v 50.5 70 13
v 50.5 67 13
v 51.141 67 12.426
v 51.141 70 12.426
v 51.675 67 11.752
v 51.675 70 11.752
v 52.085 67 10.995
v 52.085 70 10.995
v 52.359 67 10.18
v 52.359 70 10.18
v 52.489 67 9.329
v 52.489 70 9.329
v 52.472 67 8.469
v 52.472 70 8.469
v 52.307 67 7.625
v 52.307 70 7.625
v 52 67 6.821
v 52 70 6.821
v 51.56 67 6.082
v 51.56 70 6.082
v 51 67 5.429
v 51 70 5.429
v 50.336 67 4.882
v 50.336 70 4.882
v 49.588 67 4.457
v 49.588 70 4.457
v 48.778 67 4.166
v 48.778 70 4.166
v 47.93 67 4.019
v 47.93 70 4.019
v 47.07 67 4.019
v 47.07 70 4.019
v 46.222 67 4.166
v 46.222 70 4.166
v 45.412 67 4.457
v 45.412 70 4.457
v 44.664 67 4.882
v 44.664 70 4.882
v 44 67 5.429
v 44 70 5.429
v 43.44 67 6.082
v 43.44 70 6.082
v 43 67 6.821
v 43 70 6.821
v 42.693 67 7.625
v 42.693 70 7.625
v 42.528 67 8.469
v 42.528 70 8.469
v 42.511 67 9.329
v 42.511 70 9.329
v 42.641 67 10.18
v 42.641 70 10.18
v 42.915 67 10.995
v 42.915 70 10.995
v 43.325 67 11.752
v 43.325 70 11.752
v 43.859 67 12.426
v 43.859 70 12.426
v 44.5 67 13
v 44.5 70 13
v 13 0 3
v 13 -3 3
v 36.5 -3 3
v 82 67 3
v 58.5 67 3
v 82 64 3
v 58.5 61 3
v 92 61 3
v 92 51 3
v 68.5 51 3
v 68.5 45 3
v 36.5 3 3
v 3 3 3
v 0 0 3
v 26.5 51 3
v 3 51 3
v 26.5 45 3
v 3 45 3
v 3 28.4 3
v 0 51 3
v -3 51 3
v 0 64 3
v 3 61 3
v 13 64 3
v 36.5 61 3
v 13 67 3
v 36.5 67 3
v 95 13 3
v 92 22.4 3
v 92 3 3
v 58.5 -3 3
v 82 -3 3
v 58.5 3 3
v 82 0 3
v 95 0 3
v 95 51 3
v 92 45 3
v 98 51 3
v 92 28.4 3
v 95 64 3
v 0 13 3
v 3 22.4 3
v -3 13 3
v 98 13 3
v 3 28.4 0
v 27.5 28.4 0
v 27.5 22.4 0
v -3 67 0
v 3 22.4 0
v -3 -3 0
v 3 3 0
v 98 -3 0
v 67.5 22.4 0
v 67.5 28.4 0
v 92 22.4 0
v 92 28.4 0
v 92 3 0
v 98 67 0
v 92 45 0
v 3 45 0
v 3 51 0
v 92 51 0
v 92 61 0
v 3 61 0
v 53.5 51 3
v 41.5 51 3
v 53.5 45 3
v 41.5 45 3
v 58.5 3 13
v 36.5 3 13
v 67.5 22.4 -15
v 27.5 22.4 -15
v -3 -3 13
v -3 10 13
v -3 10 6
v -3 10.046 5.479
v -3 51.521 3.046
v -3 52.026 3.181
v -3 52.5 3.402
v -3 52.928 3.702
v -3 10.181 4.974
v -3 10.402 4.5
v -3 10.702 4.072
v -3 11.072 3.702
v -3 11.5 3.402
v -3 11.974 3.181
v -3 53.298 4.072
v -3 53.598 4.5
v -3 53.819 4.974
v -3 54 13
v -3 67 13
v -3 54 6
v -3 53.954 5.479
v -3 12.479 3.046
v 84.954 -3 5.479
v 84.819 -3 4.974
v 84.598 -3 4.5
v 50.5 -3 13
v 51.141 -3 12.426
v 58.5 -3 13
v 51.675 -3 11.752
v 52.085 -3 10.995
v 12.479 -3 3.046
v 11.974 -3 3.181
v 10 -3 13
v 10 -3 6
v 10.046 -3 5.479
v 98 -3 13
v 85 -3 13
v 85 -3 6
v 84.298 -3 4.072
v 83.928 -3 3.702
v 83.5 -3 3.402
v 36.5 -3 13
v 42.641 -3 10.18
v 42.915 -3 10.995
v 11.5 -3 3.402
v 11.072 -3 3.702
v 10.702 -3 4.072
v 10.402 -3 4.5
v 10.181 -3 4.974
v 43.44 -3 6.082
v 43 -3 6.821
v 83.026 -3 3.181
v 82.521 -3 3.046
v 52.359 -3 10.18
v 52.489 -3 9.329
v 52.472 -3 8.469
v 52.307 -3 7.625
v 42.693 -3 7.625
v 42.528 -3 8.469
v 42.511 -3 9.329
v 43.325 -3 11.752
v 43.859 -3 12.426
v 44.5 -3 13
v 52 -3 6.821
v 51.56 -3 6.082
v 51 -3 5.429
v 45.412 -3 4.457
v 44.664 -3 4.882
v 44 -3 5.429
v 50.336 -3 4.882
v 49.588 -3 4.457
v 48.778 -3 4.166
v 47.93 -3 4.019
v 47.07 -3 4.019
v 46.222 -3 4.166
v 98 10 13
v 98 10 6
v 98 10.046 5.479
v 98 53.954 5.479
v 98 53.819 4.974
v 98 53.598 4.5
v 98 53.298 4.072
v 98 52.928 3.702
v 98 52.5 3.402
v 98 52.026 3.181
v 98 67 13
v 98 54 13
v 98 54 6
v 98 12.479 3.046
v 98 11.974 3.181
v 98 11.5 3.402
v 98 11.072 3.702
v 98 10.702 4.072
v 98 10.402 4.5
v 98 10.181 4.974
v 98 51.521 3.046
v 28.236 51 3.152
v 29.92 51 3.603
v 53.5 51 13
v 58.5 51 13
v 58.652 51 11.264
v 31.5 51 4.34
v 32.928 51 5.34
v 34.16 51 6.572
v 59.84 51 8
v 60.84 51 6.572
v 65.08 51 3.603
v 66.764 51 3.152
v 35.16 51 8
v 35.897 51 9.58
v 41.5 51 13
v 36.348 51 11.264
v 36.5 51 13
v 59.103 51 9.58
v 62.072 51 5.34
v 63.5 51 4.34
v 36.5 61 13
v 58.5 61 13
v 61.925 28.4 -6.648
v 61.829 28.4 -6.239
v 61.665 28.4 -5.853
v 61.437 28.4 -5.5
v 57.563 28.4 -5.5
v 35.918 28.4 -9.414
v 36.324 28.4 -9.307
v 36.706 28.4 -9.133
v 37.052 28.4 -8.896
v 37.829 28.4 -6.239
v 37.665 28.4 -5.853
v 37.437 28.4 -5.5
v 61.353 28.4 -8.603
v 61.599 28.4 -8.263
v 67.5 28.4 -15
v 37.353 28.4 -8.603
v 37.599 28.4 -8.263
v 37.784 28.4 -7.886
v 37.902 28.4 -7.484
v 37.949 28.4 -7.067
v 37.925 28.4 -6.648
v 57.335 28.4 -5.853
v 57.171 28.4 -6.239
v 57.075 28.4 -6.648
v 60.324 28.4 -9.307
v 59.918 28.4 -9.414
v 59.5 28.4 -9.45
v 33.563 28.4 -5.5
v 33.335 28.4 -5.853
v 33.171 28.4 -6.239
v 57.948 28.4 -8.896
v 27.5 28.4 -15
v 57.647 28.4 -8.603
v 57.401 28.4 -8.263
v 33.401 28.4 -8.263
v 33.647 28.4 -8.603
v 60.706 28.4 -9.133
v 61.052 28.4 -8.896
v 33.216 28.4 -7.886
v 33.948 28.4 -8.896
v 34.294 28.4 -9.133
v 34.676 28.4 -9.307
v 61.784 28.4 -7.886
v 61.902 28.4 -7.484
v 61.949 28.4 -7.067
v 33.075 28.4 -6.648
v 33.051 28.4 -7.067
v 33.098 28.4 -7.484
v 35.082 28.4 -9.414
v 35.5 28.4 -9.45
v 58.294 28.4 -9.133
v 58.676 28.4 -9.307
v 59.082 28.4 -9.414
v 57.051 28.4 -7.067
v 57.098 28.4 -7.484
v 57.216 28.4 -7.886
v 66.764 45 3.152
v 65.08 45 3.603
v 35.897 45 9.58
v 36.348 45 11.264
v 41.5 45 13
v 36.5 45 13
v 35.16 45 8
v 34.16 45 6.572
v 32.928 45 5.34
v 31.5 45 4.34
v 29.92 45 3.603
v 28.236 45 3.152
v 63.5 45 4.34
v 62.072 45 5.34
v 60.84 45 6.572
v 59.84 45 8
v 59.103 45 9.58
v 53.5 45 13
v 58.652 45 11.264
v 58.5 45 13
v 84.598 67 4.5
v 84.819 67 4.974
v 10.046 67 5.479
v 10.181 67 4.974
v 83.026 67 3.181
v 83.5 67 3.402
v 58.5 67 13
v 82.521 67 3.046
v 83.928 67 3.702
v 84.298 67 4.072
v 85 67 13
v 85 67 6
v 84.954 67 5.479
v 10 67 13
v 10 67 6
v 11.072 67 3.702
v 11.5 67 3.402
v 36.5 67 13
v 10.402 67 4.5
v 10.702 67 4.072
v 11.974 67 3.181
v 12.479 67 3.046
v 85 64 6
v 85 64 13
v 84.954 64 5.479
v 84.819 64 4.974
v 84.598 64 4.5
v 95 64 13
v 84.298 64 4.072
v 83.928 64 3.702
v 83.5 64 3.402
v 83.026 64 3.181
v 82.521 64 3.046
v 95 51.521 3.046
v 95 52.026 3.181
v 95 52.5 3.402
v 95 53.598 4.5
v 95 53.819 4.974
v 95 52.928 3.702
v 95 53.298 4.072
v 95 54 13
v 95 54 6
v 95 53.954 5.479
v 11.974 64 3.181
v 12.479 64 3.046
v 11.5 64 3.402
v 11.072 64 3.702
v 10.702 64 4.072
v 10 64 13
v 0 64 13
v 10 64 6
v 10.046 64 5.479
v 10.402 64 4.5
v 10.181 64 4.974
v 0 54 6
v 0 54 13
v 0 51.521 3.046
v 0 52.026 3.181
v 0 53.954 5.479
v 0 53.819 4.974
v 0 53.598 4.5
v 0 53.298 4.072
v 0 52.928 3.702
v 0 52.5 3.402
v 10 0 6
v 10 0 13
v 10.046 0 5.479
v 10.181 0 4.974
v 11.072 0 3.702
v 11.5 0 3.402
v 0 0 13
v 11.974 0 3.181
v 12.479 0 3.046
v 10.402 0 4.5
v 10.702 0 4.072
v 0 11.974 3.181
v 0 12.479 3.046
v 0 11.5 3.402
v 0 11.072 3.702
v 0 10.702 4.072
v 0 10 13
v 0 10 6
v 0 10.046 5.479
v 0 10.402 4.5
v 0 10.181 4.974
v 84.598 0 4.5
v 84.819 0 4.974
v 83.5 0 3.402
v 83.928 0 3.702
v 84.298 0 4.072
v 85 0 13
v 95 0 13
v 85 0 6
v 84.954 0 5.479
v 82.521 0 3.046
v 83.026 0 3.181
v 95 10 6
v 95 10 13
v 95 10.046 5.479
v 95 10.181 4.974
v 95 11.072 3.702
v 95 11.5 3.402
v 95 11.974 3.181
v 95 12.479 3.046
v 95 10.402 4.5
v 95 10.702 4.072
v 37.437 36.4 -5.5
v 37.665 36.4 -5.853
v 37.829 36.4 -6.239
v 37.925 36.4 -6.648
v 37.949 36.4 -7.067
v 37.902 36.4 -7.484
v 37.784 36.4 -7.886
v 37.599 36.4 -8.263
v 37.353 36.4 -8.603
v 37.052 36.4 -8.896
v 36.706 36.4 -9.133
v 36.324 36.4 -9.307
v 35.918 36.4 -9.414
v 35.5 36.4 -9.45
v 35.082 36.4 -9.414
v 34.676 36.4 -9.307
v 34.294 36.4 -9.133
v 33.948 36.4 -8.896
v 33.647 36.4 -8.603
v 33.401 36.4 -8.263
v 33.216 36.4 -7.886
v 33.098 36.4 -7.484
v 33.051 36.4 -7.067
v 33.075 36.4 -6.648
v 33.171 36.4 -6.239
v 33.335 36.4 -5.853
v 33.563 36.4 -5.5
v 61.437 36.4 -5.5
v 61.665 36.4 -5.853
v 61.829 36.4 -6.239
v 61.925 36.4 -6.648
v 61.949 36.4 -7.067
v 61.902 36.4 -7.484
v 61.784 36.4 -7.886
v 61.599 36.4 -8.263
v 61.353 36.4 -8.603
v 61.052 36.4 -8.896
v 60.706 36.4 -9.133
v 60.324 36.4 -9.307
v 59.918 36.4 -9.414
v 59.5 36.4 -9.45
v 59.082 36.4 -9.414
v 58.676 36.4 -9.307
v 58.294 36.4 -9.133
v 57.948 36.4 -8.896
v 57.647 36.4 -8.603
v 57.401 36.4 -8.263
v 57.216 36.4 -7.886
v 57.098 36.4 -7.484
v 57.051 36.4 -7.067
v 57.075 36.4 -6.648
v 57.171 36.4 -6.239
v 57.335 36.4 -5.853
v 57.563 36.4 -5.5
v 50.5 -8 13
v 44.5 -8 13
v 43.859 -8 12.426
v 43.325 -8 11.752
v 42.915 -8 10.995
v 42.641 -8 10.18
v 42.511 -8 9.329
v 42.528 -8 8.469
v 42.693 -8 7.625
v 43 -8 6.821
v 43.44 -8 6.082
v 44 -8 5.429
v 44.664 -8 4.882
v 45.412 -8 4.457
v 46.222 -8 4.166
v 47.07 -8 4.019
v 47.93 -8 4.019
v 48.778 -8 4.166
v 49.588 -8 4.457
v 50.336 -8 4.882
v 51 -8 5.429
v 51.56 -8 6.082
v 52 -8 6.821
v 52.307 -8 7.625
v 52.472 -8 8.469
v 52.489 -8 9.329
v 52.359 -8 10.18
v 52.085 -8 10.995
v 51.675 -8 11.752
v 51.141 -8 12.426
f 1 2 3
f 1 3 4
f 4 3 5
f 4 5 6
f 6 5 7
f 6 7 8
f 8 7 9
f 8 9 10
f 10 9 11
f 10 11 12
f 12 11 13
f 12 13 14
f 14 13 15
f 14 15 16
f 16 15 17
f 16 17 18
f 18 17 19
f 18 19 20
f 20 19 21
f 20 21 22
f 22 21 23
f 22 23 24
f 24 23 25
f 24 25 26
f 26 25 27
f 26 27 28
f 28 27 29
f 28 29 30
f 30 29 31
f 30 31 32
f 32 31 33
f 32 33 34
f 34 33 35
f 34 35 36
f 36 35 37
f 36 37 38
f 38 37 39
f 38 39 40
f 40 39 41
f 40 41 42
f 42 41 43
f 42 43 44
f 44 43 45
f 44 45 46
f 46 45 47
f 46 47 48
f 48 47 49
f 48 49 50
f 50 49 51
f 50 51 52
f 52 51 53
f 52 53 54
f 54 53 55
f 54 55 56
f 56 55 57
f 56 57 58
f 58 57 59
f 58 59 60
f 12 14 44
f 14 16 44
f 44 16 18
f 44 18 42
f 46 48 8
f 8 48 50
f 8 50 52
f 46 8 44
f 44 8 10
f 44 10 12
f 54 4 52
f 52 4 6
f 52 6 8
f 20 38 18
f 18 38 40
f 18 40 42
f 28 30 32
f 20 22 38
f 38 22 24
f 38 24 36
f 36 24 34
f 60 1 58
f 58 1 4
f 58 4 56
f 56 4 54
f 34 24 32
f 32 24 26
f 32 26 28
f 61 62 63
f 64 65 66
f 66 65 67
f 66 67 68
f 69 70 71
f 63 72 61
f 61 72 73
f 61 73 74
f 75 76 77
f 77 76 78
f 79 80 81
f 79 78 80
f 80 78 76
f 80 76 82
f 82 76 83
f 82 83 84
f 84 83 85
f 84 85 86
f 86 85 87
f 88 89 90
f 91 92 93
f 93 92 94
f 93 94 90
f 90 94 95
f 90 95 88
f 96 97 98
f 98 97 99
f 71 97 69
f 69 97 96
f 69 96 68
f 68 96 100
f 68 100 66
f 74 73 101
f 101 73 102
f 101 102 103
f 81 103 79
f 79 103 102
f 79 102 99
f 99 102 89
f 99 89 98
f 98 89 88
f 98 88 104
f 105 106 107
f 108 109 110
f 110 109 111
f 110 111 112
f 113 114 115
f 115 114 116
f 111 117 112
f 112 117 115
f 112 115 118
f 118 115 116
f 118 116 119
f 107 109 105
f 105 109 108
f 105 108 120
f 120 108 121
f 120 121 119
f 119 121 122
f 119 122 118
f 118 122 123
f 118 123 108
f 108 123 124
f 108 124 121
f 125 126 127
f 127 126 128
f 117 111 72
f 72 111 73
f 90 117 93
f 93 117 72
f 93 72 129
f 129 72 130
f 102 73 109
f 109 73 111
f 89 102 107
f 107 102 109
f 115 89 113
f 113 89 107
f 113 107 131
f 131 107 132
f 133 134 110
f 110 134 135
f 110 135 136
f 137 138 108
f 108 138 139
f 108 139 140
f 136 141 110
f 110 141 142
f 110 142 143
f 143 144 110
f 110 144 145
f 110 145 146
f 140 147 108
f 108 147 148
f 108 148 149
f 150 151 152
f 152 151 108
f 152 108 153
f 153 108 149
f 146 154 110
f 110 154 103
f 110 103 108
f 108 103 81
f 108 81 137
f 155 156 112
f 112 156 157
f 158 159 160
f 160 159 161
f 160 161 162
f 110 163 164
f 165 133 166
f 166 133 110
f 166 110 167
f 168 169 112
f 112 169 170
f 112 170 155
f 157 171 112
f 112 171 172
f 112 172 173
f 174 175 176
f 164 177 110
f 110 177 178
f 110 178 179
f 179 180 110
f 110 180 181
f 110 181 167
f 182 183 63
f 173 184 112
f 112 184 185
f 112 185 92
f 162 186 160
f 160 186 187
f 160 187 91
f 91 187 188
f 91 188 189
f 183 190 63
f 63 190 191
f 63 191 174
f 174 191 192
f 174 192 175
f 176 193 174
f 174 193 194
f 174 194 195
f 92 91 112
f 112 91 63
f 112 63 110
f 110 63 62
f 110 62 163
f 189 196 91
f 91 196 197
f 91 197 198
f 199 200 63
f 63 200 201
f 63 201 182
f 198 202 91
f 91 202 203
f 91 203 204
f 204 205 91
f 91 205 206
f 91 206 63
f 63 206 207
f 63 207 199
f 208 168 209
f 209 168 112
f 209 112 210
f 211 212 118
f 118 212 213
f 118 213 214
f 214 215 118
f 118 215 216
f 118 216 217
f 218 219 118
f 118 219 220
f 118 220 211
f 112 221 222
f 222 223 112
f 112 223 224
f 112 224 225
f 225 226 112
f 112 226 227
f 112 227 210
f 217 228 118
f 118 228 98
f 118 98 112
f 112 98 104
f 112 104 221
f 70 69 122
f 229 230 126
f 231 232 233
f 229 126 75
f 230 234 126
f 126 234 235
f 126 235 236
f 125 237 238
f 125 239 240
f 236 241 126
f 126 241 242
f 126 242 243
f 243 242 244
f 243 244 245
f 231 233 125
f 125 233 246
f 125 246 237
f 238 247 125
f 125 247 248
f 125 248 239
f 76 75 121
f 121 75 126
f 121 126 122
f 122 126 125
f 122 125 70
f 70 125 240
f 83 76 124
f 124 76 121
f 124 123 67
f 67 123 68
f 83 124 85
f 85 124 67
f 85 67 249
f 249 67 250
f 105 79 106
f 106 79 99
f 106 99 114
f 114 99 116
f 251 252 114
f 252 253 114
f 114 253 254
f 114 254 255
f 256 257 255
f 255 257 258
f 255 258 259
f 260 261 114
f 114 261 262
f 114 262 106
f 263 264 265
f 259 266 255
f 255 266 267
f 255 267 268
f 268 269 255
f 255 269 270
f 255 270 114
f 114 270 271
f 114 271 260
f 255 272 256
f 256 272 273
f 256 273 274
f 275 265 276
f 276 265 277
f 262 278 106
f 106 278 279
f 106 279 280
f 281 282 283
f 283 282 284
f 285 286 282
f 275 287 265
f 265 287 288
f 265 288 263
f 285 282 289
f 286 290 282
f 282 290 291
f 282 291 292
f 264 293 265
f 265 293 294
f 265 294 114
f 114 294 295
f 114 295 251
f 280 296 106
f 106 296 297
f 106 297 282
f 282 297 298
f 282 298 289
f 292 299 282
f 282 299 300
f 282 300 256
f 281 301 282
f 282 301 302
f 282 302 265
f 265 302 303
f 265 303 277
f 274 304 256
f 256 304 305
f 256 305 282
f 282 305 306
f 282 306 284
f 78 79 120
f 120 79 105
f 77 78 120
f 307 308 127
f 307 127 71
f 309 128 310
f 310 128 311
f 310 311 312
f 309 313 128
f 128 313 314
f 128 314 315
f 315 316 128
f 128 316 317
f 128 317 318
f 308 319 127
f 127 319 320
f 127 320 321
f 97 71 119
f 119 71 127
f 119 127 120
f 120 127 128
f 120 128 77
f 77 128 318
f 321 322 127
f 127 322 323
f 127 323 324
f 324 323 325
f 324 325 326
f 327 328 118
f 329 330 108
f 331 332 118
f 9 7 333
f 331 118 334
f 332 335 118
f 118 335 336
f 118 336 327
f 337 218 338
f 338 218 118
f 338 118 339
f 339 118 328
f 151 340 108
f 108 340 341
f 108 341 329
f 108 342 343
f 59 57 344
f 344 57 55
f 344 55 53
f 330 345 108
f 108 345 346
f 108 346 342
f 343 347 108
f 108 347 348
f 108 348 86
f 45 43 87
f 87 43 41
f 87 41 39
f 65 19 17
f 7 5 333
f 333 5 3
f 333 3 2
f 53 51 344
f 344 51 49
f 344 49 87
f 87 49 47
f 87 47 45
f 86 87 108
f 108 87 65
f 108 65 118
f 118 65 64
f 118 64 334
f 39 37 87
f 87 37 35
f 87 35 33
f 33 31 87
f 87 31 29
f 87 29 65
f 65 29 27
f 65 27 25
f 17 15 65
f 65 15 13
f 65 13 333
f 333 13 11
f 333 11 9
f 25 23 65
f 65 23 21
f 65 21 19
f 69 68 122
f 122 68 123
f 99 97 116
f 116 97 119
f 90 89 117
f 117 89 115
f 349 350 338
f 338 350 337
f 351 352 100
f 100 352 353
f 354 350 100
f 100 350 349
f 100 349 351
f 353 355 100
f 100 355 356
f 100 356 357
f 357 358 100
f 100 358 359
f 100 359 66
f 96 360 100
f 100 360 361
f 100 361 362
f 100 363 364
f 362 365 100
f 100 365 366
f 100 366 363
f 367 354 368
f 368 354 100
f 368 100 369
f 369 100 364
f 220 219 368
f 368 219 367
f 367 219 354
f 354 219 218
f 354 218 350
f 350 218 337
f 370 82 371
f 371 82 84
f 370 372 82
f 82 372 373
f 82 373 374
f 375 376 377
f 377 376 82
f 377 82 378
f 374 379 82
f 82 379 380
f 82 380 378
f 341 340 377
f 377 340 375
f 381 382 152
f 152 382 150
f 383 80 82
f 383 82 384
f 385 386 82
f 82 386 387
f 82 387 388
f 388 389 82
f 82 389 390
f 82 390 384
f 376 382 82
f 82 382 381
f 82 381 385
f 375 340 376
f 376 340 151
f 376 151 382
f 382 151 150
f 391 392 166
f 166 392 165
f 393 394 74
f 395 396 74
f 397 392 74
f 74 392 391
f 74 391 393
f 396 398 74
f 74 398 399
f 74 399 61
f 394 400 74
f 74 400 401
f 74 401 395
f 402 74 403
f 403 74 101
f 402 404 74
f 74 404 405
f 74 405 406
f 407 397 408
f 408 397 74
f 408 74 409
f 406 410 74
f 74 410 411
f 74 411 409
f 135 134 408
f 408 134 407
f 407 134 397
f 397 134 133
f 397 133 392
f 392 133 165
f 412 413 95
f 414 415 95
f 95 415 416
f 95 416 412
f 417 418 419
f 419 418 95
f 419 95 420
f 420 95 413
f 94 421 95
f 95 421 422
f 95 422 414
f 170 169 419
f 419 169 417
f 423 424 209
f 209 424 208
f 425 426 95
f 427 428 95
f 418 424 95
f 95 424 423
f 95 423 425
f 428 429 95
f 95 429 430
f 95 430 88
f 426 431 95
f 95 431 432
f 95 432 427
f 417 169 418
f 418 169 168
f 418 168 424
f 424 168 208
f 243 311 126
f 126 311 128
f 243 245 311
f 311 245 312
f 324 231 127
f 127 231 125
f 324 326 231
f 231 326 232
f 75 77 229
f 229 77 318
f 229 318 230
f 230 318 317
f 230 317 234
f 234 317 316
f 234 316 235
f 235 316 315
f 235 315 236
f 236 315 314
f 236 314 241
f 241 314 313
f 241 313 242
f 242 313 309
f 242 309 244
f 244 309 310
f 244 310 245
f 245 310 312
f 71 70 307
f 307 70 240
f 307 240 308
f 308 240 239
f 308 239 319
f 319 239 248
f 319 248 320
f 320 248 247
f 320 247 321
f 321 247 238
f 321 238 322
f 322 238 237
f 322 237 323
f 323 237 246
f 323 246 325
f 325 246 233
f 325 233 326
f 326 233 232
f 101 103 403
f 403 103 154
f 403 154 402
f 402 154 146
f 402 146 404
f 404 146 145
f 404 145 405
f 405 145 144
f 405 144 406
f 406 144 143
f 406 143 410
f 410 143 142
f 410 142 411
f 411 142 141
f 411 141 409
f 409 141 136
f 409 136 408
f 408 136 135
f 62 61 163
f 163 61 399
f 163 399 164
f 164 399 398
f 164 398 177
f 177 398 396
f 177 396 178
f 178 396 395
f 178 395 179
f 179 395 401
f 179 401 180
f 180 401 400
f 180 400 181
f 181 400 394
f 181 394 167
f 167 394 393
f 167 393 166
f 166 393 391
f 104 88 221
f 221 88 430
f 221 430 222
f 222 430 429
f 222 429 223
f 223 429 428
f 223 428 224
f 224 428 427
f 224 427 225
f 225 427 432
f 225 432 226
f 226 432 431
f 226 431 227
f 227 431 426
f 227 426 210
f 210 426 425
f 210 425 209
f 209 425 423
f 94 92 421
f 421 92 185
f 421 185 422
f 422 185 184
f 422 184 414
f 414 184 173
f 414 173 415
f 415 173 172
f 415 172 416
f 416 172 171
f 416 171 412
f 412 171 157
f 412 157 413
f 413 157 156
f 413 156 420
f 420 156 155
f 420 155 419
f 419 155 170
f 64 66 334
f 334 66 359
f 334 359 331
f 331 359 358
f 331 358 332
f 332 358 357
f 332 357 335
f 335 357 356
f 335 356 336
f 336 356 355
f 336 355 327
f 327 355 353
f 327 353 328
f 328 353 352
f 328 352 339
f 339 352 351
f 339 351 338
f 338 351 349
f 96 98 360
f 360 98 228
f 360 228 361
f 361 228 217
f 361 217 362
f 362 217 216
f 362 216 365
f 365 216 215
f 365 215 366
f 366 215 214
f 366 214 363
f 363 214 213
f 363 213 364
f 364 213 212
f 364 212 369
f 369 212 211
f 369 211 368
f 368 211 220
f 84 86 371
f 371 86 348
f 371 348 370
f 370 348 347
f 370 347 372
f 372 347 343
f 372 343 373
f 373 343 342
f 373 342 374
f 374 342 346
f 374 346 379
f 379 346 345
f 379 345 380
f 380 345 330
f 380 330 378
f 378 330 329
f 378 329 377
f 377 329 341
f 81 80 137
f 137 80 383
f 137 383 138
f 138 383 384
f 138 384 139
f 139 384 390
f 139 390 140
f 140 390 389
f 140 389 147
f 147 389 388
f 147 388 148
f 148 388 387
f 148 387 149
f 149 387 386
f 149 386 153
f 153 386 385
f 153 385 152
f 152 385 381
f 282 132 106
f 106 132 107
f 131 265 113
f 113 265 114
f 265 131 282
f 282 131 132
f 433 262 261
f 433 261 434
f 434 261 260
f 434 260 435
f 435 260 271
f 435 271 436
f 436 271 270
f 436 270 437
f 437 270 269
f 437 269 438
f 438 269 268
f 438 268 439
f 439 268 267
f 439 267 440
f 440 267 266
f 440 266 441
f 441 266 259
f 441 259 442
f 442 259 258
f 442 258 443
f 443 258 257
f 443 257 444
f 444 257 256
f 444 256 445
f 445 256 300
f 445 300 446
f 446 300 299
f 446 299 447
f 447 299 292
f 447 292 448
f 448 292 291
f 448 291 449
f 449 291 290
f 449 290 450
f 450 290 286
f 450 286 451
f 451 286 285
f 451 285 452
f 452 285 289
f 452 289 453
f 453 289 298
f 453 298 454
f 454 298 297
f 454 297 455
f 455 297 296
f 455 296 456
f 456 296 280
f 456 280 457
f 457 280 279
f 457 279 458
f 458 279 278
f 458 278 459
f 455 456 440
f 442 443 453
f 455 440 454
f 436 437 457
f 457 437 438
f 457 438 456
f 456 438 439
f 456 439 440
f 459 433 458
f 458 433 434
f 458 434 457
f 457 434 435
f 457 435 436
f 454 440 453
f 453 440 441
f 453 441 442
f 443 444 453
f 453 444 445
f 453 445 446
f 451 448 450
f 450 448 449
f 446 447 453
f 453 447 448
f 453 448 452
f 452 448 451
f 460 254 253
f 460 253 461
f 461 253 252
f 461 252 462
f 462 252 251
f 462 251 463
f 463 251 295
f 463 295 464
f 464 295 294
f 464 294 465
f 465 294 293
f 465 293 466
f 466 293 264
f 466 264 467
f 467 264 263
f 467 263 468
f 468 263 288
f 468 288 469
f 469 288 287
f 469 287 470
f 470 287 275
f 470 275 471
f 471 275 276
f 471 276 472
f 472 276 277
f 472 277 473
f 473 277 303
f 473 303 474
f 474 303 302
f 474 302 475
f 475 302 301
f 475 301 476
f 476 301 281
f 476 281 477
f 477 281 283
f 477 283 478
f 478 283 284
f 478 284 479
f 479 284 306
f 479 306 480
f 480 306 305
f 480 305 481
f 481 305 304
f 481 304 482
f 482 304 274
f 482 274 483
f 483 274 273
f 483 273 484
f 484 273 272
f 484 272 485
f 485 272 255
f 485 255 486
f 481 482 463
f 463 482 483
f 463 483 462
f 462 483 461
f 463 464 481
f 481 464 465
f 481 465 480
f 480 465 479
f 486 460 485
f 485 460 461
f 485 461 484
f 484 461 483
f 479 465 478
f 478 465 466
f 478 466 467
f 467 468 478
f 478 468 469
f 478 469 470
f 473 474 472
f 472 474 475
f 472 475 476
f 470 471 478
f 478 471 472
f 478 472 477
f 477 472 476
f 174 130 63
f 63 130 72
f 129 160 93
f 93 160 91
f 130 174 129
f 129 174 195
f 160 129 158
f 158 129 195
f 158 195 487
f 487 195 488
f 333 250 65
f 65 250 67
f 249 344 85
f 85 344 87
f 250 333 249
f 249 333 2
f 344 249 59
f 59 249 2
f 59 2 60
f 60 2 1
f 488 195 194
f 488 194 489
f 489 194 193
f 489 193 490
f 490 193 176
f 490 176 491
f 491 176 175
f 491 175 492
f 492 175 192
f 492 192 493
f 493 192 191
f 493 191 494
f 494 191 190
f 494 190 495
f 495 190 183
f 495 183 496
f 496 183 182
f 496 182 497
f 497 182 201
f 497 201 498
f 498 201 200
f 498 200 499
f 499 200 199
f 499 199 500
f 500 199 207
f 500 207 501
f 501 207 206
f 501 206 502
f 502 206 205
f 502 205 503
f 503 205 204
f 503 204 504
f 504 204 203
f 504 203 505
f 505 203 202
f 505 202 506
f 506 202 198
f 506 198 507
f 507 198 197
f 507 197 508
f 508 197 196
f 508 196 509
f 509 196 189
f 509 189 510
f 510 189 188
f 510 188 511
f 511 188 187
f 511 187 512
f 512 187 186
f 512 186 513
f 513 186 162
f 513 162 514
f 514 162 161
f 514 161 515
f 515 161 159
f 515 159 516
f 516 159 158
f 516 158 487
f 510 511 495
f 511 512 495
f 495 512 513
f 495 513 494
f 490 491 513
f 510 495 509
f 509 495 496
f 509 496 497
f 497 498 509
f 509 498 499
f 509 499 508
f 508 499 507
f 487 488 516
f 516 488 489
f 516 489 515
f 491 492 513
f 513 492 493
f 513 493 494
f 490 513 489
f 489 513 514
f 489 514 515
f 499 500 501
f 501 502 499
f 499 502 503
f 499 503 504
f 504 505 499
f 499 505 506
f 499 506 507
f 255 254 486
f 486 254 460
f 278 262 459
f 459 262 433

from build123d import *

# Parameters (mm, degrees)
CROQUIS1_W              = 101
CROQUIS1_H              = 70
CROQUIS1_W_2            = 89
CROQUIS1_H_2            = 58
CROQUIS1_H_3            = 6
SALIENTE_EXTRUIR1_DEPTH = 3
SALIENTE_EXTRUIR2_DEPTH = 10
CROQUIS3_W              = 5
CROQUIS3_H              = 6
SALIENTE_EXTRUIR3_DEPTH = 10
REDONDEO1_R             = 10
REDONDEO2_R             = 3
CROQUIS5_W              = 40
CROQUIS5_H              = 6
SALIENTE_EXTRUIR4_DEPTH = 15
CROQUIS6_R              = 2.45
SALIENTE_EXTRUIR5_DEPTH = 8
CROQUIS7_W              = 22
CROQUIS7_H              = 6
SALIENTE_EXTRUIR6_DEPTH = 10
CROQUIS8_R              = 5
SALIENTE_EXTRUIR7_DEPTH = 5
CROQUIS9_W              = 22
CROQUIS9_H              = 19.446808743
CORTAR_EXTRUIR1_DEPTH   = 119.004237212
CROQUIS10_W             = 28.262492251
CROQUIS10_H             = 3.390066726
CORTAR_EXTRUIR2_DEPTH   = 8


with BuildPart() as part:
    # Croquis1 → Saliente-Extruir1 (new body)
    # profile 1 of 3: a face of its own
    with BuildSketch(Plane.XY):
        with Locations((47.5, 32)):
            Rectangle(CROQUIS1_W, CROQUIS1_H)
        with Locations((47.5, 32)):
            Rectangle(CROQUIS1_W_2, CROQUIS1_H_2, mode=Mode.SUBTRACT)
    # profile 2 of 3: a face of its own
    with BuildSketch(Plane.XY):
        with Locations((47.5, 48)):
            Rectangle(CROQUIS1_W_2, CROQUIS1_H_3)
    # profile 3 of 3: a face of its own
    with BuildSketch(Plane.XY):
        with Locations((47.5, 25.4)):
            Rectangle(CROQUIS1_W_2, CROQUIS1_H_3)
    extrude(amount=SALIENTE_EXTRUIR1_DEPTH)

    # Croquis2 → Saliente-Extruir2 (add)
    with BuildSketch(Plane.XY.offset(3)):
        Polygon((85, 67), (98, 67), (98, 54), (95, 54), (95, 64), (85, 64), align=None)
        Polygon((10, 64), (10, 67), (-3, 67), (-3, 54), (0, 54), (0, 64), align=None)
        Polygon((10, -3), (-3, -3), (-3, 10), (0, 10), (0, 0), (10, 0), align=None)
        Polygon((85, 0), (85, -3), (98, -3), (98, 10), (95, 10), (95, 0), align=None)
    extrude(amount=SALIENTE_EXTRUIR2_DEPTH)

    # Croquis3 → Saliente-Extruir3 (add)
    with BuildSketch(Plane.XY.offset(3)):
        with Locations((56, 48)):
            Rectangle(CROQUIS3_W, CROQUIS3_H)
        with Locations((39, 48)):
            Rectangle(CROQUIS3_W, CROQUIS3_H)
    extrude(amount=SALIENTE_EXTRUIR3_DEPTH)

    # Redondeo1
    redondeo1_edges = [part.edges().sort_by_distance(p)[0] for p in [
        (36.5, 48, 3),
        (58.5, 48, 3),
    ]]
    fillet(redondeo1_edges, radius=REDONDEO1_R - 0.0001)  # a hair under: the kernel refuses the full size

    # Redondeo2
    redondeo2_edges = [part.edges().sort_by_distance(p)[0] for p in [
        (85, -1.5, 3),
        (96.5, 10, 3),
        (85, 65.5, 3),
        (96.5, 54, 3),
        (10, 65.5, 3),
        (-1.5, 54, 3),
        (10, -1.5, 3),
        (-1.5, 10, 3),
    ]]
    fillet(redondeo2_edges, radius=REDONDEO2_R)

    # Croquis5 → Saliente-Extruir4 (add)
    with BuildSketch(Plane(origin=(0, 0, 0), x_dir=(-1, 0, 0), z_dir=(0, 0, -1))):
        with Locations((-47.5, 25.4)):
            Rectangle(CROQUIS5_W, CROQUIS5_H)
    extrude(amount=SALIENTE_EXTRUIR4_DEPTH)

    # Croquis6 → Saliente-Extruir5 (add)
    with BuildSketch(Plane(origin=(0, 28.4, 0), x_dir=(1, 0, 0), z_dir=(0, 1, 0))):
        with Locations(Location((35.5, 7, 0), (0, 0, 270))):
            Circle(CROQUIS6_R)
        with Locations(Location((59.5, 7, 0), (0, 0, 270))):
            Circle(CROQUIS6_R)
    extrude(amount=SALIENTE_EXTRUIR5_DEPTH)

    # Croquis7 → Saliente-Extruir6 (add, through all)
    with BuildSketch(Plane.XY.offset(3)):
        with Locations((47.5, 0)):
            Rectangle(CROQUIS7_W, CROQUIS7_H)
        with Locations((47.5, 64)):
            Rectangle(CROQUIS7_W, CROQUIS7_H)
    extrude(amount=SALIENTE_EXTRUIR6_DEPTH)

    # Croquis8 → Saliente-Extruir7 (add)
    with BuildSketch(Plane.XZ.offset(3)):
        with Locations(Location((47.5, 9, 0), (0, 0, 126.869897646))):
            Circle(CROQUIS8_R)
    saliente_extruir7 = extrude(amount=SALIENTE_EXTRUIR7_DEPTH)

    # Croquis9 → Cortar-Extruir1 (cut, through all)
    with BuildSketch(Plane(origin=(0, 3, 0), x_dir=(1, 0, 0), z_dir=(0, 1, 0))):
        with Locations((47.5, -22.723404372)):
            Rectangle(CROQUIS9_W, CROQUIS9_H)
    cortar_extruir1 = extrude(amount=-CORTAR_EXTRUIR1_DEPTH, mode=Mode.SUBTRACT)

    # Simetría1: Saliente-Extruir7, Cortar-Extruir1 across plane
    add(saliente_extruir7.mirror(Plane.ZX.offset(31)))
    add(cortar_extruir1.mirror(Plane.ZX.offset(31)), mode=Mode.SUBTRACT)

    # Croquis10 → Cortar-Extruir2 (cut)
    with BuildSketch(Plane(origin=(0, 36.4, 0), x_dir=(1, 0, 0), z_dir=(0, 1, 0))):
        with Locations((47.340282602, 3.804966637)):
            Rectangle(CROQUIS10_W, CROQUIS10_H)
    extrude(amount=-CORTAR_EXTRUIR2_DEPTH, mode=Mode.SUBTRACT)


solid = part.part
